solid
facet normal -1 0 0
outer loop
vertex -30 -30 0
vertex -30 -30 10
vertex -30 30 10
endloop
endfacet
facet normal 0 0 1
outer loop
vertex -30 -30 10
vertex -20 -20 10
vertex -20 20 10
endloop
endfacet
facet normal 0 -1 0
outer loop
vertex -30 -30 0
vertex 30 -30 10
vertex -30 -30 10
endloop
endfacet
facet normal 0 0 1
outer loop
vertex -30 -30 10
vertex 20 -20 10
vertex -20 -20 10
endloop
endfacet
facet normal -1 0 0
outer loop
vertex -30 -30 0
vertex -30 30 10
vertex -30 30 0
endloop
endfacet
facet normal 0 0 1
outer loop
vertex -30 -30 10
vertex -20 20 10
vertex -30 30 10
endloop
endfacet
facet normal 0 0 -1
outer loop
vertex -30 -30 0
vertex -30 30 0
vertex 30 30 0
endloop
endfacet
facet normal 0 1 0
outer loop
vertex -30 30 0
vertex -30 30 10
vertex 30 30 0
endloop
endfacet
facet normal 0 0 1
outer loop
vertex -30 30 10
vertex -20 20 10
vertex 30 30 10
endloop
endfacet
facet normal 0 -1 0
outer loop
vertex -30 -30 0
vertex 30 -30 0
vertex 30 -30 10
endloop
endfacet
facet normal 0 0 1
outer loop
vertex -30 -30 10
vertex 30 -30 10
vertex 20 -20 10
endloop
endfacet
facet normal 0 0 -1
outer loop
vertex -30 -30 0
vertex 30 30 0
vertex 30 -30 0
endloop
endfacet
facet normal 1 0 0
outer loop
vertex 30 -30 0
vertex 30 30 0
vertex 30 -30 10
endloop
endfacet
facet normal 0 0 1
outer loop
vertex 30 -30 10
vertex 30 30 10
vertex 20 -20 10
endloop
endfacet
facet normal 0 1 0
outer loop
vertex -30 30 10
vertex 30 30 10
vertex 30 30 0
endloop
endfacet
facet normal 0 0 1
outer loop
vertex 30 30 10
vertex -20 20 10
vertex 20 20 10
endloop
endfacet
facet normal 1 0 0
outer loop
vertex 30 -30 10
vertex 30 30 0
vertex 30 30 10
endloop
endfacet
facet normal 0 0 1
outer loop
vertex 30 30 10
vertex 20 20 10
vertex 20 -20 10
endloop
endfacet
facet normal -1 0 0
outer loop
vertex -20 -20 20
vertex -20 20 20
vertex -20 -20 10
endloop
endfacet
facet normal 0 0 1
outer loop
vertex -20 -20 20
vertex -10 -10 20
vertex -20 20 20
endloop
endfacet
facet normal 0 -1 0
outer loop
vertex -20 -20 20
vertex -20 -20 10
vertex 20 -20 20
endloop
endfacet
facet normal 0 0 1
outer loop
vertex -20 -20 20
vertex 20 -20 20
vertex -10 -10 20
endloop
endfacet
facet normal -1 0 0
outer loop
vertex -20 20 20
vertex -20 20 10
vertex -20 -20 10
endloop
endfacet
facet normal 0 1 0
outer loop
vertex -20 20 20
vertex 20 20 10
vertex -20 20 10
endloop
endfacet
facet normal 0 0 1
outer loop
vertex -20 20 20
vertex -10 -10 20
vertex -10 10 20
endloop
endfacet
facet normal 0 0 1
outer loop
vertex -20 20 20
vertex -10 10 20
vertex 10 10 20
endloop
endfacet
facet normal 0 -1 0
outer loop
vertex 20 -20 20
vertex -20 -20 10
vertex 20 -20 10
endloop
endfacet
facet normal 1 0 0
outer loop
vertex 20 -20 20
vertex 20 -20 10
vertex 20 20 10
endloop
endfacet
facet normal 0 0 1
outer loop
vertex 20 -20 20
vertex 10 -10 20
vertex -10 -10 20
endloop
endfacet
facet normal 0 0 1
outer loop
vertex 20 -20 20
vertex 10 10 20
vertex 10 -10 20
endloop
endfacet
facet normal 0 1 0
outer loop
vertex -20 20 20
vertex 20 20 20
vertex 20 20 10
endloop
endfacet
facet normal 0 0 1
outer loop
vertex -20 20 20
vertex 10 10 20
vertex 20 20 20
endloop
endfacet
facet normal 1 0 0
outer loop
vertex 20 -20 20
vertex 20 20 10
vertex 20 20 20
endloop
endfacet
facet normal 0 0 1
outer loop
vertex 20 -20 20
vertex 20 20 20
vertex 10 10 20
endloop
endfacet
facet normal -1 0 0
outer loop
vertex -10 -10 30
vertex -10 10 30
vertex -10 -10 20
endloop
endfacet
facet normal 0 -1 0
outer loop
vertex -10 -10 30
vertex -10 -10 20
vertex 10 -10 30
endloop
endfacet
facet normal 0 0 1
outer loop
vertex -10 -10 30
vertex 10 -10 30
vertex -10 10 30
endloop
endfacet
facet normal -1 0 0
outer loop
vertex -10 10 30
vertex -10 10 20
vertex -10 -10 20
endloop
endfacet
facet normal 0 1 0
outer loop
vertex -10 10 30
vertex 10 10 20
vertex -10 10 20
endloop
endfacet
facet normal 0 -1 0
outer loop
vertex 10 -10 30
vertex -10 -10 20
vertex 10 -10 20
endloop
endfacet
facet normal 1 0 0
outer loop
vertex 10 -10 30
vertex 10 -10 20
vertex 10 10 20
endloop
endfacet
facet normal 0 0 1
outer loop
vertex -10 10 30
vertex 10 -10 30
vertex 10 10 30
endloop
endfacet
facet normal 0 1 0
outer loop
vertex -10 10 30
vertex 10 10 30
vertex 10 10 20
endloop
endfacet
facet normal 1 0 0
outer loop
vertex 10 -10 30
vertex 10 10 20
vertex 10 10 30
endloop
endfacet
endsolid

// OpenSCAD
translate([-30, -30, 0])
    cube([60, 60, 10]);

translate([-20, -20, 10])
    cube([40, 40, 10]);

translate([-10, -10, 20])
    cube([20, 20, 10]);
